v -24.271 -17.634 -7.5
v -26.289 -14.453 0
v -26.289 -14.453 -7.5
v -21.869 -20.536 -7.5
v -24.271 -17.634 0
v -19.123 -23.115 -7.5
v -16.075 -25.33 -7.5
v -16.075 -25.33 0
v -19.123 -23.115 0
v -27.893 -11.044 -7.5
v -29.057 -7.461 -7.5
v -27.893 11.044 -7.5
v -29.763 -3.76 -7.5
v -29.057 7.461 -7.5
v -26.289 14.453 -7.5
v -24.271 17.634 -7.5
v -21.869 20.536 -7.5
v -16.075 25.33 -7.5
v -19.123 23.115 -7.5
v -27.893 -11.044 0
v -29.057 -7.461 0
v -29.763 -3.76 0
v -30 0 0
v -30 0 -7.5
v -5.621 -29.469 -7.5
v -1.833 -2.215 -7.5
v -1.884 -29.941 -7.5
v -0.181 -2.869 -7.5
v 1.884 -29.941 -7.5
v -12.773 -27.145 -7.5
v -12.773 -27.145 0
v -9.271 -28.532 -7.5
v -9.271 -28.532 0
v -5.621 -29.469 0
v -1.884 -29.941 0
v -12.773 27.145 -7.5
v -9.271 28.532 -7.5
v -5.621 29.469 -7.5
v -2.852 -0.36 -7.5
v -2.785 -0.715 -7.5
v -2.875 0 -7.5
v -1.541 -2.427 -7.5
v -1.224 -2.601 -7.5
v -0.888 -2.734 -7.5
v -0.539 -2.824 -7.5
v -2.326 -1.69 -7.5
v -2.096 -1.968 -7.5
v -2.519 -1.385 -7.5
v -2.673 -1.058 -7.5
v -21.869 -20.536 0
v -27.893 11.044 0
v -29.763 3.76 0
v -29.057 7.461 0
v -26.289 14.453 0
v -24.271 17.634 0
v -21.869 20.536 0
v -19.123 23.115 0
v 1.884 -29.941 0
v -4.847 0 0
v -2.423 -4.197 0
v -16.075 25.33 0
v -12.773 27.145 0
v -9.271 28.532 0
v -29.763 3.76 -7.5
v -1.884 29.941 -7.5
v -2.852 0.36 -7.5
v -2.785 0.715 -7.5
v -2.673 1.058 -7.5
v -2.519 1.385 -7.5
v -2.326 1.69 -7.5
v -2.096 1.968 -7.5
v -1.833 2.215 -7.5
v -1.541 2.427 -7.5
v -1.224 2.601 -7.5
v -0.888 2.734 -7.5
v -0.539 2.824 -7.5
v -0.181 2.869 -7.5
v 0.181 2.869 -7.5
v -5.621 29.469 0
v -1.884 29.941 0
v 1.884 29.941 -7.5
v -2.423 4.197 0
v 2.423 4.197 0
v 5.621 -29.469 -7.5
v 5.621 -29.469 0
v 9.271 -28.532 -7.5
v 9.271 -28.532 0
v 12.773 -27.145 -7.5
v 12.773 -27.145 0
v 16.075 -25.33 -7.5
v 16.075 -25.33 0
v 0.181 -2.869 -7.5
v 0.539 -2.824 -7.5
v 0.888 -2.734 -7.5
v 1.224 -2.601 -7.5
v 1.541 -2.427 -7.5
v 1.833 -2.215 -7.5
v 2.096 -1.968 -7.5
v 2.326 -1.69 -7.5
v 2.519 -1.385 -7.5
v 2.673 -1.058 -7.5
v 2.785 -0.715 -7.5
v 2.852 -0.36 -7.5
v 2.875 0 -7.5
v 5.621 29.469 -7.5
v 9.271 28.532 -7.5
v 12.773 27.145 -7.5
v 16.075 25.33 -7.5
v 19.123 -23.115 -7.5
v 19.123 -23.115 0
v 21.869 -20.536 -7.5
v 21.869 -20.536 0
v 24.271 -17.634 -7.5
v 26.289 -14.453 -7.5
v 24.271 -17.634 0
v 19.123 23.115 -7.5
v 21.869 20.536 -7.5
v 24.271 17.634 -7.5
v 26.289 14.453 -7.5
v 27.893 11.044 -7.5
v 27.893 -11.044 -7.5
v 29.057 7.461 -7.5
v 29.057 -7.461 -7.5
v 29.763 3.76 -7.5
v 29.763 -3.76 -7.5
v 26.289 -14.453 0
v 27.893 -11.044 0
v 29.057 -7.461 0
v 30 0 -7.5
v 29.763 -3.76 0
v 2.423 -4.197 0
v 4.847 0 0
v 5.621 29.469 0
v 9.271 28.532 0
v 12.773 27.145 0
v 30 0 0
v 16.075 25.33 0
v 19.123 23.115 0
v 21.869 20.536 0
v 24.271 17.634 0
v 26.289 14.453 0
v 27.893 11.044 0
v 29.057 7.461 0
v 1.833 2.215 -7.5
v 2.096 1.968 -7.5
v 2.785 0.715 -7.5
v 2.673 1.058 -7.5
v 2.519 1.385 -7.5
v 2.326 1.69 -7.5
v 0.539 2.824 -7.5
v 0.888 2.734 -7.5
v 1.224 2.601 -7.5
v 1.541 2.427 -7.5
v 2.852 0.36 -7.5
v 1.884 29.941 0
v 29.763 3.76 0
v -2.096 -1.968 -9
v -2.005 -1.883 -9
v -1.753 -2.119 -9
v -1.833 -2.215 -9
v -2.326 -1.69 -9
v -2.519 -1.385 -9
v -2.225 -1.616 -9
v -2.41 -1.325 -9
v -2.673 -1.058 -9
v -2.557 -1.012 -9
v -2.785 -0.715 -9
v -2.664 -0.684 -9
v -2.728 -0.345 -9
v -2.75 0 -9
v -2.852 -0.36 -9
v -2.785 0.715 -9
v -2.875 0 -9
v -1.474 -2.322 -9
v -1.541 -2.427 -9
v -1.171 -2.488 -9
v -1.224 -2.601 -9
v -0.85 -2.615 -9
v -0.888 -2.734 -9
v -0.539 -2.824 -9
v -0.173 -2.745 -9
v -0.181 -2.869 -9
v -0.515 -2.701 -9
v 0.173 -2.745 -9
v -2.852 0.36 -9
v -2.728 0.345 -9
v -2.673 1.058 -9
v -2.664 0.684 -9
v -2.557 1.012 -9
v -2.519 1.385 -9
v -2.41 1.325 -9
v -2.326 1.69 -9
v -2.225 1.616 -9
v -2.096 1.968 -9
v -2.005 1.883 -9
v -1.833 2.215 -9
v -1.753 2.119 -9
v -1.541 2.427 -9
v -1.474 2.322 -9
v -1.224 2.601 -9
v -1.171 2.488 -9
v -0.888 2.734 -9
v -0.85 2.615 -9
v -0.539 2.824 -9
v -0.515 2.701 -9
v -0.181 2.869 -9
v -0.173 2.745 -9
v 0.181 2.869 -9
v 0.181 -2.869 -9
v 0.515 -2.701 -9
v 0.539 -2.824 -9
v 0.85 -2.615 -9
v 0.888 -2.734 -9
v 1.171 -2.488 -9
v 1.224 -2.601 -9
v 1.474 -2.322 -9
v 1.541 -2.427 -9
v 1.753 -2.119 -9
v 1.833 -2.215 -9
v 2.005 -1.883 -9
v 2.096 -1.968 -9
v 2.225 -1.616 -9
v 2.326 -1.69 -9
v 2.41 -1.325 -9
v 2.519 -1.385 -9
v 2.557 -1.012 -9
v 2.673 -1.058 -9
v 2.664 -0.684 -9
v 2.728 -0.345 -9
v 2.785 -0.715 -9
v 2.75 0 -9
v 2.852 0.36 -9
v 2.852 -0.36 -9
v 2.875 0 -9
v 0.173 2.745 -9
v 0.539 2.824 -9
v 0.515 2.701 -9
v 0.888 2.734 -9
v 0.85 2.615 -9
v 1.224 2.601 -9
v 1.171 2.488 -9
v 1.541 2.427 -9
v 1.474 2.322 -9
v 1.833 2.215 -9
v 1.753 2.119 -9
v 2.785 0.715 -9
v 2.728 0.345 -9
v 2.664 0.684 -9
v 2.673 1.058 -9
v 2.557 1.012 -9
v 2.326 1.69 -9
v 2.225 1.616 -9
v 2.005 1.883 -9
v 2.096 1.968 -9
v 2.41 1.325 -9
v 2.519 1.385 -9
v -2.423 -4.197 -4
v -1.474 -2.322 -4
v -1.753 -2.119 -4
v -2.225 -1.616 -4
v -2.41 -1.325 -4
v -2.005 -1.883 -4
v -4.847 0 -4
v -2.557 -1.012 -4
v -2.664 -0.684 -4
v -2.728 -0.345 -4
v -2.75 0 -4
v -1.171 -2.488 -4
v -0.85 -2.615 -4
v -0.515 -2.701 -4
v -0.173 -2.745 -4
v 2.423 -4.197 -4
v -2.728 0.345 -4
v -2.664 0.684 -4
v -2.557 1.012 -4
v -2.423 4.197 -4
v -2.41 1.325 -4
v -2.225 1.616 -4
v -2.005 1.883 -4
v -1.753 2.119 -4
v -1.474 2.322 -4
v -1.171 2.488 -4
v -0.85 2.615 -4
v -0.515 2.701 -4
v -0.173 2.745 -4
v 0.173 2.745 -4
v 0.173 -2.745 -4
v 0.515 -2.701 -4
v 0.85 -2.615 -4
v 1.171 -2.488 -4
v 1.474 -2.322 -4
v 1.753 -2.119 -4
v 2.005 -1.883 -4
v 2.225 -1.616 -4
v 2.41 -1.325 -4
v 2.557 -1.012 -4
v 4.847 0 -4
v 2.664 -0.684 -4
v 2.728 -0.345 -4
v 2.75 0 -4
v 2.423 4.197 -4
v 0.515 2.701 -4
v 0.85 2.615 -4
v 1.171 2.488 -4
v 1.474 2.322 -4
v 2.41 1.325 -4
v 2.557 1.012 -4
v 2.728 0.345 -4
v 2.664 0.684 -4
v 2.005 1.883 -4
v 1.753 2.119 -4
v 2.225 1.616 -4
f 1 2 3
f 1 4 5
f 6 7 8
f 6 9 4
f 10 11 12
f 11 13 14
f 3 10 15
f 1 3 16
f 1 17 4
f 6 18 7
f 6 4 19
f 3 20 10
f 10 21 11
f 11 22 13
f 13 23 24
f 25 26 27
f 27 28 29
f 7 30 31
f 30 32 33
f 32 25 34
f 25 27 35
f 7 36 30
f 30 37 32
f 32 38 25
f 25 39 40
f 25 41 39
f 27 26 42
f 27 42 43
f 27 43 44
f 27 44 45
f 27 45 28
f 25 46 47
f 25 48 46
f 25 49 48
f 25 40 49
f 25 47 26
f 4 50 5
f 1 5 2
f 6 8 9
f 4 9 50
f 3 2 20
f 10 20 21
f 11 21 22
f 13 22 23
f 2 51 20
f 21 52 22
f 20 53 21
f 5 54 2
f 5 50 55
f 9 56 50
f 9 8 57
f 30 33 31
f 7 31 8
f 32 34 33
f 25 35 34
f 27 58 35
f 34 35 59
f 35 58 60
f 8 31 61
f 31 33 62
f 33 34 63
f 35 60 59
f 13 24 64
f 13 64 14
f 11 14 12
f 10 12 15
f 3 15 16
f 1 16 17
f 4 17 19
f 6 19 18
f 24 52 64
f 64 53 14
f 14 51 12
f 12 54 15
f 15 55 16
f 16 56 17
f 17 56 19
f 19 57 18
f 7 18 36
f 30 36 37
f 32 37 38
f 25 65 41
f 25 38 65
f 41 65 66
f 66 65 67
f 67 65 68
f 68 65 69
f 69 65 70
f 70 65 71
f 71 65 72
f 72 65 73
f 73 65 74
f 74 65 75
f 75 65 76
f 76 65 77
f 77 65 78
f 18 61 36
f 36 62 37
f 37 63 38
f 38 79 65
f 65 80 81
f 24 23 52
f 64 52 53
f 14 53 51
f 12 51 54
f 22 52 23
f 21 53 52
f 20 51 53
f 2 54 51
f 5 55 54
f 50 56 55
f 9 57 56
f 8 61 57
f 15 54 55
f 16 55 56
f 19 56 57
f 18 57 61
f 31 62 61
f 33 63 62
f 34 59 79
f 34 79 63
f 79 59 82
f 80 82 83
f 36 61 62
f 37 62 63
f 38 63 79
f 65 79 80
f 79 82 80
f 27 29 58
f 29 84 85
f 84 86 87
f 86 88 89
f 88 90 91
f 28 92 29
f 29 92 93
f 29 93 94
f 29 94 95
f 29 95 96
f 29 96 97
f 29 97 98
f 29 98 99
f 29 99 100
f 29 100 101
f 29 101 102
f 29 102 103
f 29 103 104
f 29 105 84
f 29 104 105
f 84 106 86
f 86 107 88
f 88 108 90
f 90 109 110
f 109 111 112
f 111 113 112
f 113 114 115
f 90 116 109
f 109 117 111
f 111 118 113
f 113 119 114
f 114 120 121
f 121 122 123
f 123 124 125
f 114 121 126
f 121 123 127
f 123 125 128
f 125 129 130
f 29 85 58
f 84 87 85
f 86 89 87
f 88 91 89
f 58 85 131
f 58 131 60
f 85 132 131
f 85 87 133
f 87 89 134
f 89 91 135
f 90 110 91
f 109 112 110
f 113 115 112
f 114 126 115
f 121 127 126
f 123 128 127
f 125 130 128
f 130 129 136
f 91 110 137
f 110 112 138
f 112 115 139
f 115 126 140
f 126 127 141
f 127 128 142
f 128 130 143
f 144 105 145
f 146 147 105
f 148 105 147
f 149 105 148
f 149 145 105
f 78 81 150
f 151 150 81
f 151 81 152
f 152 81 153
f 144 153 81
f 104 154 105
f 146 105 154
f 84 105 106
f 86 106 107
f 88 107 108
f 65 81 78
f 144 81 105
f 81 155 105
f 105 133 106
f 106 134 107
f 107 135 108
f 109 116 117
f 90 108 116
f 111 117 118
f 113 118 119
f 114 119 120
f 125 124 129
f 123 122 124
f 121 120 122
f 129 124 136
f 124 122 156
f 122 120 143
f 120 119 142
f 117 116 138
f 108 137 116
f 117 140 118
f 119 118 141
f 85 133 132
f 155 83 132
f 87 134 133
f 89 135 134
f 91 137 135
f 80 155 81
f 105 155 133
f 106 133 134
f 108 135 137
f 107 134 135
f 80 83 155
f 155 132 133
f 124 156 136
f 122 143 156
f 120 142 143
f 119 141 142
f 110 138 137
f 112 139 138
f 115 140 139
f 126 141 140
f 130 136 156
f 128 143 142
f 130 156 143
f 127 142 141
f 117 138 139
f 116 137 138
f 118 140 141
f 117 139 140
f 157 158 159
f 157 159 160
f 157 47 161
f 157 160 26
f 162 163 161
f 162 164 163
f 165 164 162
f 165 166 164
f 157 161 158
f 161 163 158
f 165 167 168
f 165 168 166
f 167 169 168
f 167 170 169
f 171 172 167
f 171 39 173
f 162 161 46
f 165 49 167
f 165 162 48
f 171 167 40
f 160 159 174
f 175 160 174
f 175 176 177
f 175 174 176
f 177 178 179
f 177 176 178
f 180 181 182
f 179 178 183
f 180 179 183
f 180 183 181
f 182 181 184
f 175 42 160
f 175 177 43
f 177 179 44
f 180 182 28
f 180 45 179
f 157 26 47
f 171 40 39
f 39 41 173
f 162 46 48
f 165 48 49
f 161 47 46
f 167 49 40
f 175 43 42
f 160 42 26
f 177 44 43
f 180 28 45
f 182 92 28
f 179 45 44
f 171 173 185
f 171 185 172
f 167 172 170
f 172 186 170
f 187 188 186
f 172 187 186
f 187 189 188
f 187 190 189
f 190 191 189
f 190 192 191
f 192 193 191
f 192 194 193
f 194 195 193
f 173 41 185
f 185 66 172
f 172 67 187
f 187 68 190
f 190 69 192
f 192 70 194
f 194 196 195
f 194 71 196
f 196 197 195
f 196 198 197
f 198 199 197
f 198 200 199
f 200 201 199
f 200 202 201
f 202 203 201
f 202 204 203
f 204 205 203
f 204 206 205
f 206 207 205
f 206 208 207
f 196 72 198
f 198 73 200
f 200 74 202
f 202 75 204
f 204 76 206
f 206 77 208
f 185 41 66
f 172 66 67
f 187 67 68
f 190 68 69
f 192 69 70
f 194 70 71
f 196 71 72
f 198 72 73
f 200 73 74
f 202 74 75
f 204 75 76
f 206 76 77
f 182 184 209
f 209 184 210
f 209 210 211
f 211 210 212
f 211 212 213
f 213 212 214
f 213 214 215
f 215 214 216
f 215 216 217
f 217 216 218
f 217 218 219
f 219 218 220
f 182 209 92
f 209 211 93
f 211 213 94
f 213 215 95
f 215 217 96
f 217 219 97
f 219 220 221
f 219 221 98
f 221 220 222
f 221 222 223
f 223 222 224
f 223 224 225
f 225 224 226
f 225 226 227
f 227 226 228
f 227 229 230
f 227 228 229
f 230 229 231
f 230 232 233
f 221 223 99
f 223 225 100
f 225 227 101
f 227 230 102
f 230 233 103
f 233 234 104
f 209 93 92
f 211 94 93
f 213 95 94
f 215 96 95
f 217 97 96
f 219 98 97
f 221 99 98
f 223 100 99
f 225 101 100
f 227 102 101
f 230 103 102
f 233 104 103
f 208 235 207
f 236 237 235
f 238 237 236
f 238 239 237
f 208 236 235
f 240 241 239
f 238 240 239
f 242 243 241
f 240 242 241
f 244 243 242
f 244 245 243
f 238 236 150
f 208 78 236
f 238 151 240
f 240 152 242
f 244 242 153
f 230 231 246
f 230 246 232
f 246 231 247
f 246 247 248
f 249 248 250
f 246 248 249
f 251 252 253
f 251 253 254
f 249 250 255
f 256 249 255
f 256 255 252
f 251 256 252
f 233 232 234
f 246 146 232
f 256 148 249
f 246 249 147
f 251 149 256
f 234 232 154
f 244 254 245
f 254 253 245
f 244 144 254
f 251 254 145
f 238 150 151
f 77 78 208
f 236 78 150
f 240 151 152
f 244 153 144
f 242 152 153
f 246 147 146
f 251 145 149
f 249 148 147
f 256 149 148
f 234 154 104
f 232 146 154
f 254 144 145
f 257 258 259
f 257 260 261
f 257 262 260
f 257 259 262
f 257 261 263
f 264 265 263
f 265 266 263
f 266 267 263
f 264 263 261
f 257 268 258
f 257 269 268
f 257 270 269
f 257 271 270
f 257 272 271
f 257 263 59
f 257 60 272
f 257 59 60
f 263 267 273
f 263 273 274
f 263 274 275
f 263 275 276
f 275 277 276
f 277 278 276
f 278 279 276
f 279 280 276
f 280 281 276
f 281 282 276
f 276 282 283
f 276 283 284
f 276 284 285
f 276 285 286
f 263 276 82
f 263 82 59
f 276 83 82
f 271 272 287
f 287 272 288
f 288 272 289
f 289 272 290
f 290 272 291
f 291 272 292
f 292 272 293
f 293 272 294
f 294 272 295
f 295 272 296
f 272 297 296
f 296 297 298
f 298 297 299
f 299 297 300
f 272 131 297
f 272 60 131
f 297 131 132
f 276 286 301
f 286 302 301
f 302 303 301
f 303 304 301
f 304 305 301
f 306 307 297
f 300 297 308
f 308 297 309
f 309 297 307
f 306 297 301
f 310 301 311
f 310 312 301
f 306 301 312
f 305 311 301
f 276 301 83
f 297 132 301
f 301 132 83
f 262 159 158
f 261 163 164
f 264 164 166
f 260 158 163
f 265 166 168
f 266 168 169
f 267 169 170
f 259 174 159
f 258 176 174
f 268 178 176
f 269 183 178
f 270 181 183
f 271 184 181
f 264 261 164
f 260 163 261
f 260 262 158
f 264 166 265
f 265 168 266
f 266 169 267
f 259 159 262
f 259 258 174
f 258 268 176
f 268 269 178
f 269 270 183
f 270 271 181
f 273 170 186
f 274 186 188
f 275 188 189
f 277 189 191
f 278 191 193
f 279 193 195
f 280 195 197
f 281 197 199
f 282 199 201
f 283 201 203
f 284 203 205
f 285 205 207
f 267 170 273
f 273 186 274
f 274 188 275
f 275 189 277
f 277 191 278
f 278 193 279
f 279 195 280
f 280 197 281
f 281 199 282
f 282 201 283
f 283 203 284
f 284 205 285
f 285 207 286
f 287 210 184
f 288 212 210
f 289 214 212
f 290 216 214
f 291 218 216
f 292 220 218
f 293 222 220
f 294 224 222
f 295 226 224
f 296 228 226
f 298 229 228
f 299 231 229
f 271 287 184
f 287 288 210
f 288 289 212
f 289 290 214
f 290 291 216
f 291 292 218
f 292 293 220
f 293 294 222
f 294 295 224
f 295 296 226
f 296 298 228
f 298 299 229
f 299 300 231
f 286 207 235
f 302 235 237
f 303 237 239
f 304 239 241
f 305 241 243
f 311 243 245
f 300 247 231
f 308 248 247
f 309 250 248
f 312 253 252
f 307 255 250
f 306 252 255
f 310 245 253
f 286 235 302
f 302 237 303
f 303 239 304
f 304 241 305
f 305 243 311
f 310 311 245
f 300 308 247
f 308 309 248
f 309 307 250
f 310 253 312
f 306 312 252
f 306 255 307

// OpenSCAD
$fn = 50;


difference() {
	union() {
		translate(v = [0, 0, -7.5000000000]) {
			cylinder(h = 7.5000000000, r = 30.0000000000);
		}
		#translate(v = [0, 0, -9.0000000000]) {
			cylinder(h = 9, r = 2.8750000000);
		}
	}
	union() {
		translate(v = [0, 0, 0]) {
			rotate(a = [0, 0, 0]) {
				difference() {
					union() {
						translate(v = [0, 0, -4]) {
							linear_extrude(height = 4) {
								polygon(points = [[4.8468000000, 0.0000000000], [2.4234000000, 4.1974519271], [-2.4234000000, 4.1974519271], [-4.8468000000, 0.0000000000], [-2.4234000000, -4.1974519271], [2.4234000000, -4.1974519271]]);
							}
						}
					}
					union();
				}
			}
		}
		#translate(v = [0, 0, -100.0000000000]) {
			cylinder(h = 200, r = 2.7500000000);
		}
	}
}
